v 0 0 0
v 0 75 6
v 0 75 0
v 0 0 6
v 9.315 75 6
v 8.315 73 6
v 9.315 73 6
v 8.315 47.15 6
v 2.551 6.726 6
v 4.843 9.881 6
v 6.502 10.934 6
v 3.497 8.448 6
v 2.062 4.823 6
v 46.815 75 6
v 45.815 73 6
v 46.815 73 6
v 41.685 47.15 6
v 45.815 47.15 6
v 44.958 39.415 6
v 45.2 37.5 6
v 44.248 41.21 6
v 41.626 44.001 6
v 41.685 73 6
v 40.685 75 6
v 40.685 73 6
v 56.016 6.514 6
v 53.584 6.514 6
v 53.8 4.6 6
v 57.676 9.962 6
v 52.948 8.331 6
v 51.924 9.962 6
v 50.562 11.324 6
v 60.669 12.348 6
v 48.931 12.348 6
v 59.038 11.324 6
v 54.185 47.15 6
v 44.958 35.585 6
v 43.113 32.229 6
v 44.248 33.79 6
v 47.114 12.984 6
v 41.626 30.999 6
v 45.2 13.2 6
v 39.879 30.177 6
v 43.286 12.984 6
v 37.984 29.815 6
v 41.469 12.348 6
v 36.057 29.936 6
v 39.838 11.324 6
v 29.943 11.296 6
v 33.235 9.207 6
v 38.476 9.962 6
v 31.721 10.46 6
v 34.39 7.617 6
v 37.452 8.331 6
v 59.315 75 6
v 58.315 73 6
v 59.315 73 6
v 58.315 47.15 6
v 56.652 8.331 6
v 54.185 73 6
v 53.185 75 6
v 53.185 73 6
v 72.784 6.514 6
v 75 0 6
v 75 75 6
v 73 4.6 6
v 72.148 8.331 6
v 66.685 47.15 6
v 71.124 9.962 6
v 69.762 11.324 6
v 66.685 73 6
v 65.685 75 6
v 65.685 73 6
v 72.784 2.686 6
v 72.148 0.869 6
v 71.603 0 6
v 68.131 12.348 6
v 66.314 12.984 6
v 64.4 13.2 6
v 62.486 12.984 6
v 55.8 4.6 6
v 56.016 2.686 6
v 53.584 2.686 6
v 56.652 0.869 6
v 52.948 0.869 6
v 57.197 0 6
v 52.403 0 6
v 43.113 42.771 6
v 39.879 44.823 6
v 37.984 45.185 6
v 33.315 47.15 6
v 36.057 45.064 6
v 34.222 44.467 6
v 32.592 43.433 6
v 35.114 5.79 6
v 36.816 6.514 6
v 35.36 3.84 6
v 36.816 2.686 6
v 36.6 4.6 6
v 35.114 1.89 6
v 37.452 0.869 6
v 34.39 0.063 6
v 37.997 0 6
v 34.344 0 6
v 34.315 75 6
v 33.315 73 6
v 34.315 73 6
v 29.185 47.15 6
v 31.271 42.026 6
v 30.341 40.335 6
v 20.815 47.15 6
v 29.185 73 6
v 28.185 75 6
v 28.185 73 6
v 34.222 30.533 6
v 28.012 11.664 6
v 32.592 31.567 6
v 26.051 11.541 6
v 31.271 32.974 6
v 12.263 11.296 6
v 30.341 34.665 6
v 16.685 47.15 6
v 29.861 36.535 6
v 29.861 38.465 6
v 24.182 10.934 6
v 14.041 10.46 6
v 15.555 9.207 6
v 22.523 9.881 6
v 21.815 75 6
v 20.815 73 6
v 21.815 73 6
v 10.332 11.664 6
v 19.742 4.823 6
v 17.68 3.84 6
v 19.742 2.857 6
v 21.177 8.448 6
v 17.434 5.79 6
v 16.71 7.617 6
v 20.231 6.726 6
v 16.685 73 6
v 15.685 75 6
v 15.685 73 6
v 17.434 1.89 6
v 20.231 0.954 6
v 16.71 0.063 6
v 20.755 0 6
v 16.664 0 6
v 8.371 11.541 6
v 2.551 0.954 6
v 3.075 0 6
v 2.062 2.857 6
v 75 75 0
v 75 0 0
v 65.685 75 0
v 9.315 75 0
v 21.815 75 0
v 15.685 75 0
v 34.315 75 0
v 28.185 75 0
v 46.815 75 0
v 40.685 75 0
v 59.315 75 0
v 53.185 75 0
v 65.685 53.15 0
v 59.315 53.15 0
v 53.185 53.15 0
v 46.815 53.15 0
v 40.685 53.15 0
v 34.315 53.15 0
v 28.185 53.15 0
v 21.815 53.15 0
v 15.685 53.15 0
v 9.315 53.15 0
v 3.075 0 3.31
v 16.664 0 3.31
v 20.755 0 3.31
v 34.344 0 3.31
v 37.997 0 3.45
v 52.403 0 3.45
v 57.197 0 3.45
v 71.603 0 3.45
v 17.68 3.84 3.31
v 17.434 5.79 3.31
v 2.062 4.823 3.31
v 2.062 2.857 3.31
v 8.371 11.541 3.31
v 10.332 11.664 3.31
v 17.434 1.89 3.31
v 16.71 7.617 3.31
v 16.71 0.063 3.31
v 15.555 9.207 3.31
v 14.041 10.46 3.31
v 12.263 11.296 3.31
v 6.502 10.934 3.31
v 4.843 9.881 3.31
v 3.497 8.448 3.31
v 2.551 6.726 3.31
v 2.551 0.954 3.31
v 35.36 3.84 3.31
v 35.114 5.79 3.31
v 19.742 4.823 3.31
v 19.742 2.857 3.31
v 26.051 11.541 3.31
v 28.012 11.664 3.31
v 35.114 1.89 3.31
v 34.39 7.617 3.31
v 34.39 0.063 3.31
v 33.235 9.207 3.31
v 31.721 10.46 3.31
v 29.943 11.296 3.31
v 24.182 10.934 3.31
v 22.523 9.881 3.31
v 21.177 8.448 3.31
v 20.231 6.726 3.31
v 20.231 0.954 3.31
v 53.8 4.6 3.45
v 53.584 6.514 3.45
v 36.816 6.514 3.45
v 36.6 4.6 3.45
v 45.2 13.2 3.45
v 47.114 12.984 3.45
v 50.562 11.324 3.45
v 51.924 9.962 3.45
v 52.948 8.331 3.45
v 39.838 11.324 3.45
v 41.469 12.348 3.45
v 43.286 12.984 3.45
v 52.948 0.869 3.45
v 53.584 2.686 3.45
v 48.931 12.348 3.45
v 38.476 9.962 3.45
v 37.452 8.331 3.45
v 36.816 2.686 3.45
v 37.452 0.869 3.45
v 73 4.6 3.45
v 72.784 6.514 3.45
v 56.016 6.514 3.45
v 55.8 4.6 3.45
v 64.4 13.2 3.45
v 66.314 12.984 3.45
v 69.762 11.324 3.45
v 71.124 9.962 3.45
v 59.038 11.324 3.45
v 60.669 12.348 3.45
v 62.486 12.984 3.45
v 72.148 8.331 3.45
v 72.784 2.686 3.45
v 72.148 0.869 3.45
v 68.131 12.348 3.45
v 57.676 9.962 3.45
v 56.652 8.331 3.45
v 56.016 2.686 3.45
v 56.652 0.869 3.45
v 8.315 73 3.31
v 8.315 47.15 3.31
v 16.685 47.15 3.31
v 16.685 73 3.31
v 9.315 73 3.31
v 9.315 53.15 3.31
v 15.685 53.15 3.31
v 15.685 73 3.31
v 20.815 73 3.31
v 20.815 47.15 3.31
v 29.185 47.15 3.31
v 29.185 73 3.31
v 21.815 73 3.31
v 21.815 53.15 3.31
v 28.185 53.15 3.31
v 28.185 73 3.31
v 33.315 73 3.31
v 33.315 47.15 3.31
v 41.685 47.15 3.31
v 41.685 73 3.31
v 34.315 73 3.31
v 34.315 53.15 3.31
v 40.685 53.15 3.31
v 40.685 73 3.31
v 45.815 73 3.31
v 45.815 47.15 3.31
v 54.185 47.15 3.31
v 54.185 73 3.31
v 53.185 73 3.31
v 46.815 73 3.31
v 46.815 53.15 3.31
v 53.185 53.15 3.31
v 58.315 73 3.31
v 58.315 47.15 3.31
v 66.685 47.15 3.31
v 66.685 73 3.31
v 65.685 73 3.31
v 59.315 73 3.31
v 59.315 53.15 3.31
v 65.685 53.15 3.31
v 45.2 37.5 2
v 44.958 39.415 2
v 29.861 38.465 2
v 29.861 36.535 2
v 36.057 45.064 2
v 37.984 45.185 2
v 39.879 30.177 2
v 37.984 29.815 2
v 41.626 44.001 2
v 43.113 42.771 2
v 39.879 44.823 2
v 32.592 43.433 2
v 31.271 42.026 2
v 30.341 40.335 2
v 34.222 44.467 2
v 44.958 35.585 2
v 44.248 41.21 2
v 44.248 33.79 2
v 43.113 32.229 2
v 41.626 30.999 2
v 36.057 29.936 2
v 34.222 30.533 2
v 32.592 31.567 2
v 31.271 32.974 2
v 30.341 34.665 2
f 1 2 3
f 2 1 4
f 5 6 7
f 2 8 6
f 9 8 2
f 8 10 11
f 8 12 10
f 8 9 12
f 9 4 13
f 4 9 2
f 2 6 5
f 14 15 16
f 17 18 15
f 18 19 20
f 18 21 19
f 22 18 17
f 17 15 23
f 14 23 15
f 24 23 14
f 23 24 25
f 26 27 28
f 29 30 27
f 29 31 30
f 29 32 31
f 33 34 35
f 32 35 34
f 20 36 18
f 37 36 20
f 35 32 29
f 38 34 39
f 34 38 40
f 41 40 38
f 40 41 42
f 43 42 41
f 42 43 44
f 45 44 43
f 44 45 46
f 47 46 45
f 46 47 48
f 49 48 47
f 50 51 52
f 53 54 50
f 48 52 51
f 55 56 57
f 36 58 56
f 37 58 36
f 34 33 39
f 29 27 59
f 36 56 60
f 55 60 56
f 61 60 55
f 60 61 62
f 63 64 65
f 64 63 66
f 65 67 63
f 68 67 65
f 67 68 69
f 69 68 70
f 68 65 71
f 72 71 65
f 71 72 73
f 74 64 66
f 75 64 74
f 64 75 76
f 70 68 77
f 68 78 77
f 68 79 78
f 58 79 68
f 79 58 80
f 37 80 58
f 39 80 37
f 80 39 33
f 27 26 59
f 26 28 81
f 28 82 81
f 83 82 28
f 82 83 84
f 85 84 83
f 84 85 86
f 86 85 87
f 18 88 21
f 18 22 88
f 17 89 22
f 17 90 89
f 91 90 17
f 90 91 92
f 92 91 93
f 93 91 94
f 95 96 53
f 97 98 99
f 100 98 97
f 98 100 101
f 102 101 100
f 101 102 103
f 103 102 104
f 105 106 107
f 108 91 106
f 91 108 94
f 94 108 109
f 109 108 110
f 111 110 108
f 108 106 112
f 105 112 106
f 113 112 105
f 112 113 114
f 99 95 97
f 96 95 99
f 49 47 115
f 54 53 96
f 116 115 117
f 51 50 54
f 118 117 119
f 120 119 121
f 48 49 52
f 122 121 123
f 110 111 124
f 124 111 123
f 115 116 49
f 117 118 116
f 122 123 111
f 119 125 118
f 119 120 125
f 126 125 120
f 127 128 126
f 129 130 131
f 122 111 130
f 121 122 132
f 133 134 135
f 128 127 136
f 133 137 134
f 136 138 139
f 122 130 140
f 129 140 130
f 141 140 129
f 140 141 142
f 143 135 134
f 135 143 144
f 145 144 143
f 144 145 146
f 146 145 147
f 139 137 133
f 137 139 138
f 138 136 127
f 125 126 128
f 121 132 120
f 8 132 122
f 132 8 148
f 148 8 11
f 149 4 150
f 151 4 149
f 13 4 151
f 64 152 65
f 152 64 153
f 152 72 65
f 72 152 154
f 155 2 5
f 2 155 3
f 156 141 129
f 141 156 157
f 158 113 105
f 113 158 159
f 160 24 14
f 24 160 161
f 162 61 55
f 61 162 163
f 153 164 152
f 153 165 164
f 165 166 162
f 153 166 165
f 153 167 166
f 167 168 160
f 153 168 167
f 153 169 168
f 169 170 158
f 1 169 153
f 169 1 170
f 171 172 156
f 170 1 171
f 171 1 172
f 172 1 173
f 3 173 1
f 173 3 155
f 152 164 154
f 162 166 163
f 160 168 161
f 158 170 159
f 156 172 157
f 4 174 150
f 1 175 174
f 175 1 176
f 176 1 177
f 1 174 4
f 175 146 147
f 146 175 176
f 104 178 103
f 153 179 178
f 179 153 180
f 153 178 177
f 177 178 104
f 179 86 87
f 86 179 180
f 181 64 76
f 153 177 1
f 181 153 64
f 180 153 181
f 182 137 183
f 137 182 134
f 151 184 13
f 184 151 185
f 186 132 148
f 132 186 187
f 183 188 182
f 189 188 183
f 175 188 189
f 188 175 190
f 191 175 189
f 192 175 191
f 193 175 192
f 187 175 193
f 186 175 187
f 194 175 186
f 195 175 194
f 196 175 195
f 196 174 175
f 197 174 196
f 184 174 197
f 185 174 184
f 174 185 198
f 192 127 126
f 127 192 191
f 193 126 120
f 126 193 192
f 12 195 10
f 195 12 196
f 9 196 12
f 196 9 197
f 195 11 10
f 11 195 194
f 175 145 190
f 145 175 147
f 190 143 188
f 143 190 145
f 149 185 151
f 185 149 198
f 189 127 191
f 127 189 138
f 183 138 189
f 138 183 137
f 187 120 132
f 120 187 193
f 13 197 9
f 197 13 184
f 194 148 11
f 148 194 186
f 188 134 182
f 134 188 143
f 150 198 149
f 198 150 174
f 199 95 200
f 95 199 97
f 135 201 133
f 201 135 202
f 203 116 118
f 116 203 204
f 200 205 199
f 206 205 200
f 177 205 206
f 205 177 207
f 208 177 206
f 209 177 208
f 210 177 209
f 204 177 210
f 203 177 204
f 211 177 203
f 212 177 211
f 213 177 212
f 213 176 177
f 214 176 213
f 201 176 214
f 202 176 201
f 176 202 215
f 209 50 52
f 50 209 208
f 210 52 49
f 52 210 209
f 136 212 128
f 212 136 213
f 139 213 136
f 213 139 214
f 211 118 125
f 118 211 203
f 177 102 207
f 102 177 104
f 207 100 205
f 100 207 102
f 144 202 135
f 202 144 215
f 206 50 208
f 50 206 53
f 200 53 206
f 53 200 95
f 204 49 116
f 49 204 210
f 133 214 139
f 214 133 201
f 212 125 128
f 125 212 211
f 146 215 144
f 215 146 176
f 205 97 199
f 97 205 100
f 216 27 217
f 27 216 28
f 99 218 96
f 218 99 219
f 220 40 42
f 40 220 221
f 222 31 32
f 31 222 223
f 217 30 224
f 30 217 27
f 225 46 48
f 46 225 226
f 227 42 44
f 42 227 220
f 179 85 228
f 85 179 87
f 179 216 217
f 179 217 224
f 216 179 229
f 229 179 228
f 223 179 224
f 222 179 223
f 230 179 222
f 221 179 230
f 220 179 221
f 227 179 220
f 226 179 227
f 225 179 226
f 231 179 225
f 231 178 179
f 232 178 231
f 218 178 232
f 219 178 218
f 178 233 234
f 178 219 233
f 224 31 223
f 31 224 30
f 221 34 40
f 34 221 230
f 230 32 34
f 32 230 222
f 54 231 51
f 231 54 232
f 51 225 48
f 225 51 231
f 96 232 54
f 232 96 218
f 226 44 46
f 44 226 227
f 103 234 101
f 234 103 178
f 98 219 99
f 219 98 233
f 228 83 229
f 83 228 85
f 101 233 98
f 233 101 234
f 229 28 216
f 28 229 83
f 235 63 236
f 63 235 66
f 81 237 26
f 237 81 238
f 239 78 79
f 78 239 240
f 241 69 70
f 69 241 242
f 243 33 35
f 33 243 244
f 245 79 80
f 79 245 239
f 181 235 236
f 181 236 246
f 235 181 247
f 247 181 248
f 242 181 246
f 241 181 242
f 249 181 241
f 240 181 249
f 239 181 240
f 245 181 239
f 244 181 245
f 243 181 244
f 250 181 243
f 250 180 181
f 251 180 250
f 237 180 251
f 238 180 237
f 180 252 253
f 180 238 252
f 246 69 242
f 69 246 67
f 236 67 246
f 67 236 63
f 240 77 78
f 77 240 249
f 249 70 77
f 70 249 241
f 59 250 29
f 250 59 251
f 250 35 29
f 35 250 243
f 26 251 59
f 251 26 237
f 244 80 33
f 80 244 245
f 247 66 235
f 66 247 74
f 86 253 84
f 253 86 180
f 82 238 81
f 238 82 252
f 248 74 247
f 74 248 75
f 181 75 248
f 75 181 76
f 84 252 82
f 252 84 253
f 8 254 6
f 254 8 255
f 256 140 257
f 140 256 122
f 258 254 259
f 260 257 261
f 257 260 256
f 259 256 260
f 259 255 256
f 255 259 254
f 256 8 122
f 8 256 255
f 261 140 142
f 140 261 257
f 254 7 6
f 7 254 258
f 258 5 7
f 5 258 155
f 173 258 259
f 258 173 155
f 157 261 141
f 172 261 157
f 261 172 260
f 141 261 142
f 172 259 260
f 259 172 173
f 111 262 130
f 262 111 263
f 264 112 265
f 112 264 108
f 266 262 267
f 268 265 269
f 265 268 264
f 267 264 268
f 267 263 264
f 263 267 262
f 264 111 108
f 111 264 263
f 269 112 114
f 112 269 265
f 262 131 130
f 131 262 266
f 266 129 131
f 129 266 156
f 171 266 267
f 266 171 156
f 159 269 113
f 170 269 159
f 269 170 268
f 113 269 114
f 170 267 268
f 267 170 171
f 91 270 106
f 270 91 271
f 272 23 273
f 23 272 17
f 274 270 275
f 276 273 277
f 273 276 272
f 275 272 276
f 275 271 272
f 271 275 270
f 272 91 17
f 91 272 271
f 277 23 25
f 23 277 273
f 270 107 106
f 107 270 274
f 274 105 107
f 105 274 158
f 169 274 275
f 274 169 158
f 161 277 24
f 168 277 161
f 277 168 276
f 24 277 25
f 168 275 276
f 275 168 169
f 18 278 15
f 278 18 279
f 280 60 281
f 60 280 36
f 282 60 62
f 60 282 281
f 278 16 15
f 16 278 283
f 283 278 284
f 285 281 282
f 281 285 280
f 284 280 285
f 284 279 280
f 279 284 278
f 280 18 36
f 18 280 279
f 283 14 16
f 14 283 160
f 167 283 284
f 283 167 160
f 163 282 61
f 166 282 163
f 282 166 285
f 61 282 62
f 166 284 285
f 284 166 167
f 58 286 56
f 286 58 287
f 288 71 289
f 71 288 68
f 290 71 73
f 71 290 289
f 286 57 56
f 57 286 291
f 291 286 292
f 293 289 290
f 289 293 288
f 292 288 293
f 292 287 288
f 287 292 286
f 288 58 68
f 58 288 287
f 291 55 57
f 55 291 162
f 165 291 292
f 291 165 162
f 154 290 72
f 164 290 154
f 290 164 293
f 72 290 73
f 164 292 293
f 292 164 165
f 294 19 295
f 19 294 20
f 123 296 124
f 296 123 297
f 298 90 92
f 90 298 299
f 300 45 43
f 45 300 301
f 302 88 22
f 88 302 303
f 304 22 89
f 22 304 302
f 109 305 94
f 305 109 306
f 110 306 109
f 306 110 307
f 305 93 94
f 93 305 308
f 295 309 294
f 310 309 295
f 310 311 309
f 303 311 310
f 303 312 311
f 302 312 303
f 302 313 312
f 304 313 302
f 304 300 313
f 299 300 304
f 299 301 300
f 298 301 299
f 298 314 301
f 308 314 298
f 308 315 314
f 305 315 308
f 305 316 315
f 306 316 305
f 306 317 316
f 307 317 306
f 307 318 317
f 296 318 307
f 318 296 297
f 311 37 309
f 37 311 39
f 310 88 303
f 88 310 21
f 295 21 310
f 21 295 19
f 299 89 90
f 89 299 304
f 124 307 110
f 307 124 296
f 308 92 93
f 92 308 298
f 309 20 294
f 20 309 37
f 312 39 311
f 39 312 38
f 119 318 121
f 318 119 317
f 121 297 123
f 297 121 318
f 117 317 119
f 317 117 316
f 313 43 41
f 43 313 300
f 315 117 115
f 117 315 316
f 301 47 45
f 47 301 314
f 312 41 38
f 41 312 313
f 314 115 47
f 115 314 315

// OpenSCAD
length = 75;
width = 75;
height = 6;

//Based on magnet size:
magnetBaseInnerDiameter = 15.4;
magnetHeight = 4.0;

//	5 heartbeat tokens 2.19 thick 7.87 wi 25.35 long 
//	prestige token 2 15.18 diameter 2.19 thick 
//	money tokens 2 2.05 thick 16.7 diameter

prestigeTokenDiameter = 15.18 + .5;
prestigeTokenOffset = 4;
prestigeTokenHeight = 2.19 + .5;

moneyTokenDiameter = 16.7 + .5;
moneyTokenOffset = 4;
moneyTokenHeight = 2.05 + .5;

heartbeatTokenWidth = 25.35 + .5;
heartbeatTokenLength = 7.87 + .5;
heartbeatTokenHeight = 2.19 + .5;

spaceBetweenCircles = 2;
wallThickness = spaceBetweenCircles;

squareLipWidthRemainder = 2;
squareLipLengthRemainder = 4;

difference(){
    cube([length, width, height]);

    translate(
        [
            spaceBetweenCircles + prestigeTokenDiameter/2,  
            prestigeTokenDiameter/2 - prestigeTokenOffset,
            height - prestigeTokenHeight
        ])
        cylinder(prestigeTokenHeight, d=prestigeTokenDiameter);
    
    translate(
        [
            spaceBetweenCircles * 2 + prestigeTokenDiameter * 3/2,  
            prestigeTokenDiameter/2 - prestigeTokenOffset,
            height - prestigeTokenHeight
        ])
        cylinder(prestigeTokenHeight, d=prestigeTokenDiameter);

    translate(
        [
            length - (moneyTokenDiameter * 3/2 + spaceBetweenCircles * 2),
            moneyTokenDiameter/2 - moneyTokenOffset,
            height - moneyTokenHeight
        ])
        cylinder(moneyTokenHeight, d=moneyTokenDiameter);

    translate(
        [
            length - (moneyTokenDiameter/2 + spaceBetweenCircles),
            moneyTokenDiameter/2 - moneyTokenOffset,
            height - moneyTokenHeight
        ])
        cylinder(moneyTokenHeight, d=moneyTokenDiameter);
    
    
    
    
//    translate(
//        [
//            spaceBetweenCircles + chiefTokenDiameter/2,
//            width - (chiefTokenDiameter/2 - chiefTokenOffset),
//            height - chiefTokenHeight
//        ])
//        cube([]);  //chiefTokenHeight, d=chiefTokenDiameter);


    translate(
        [
            length/6 - (heartbeatTokenLength/2),
            width - (heartbeatTokenWidth + wallThickness),
            height - heartbeatTokenHeight
        ])
        cube([heartbeatTokenLength,heartbeatTokenWidth, heartbeatTokenHeight]);
    translate([
        length/6 - (heartbeatTokenLength - squareLipWidthRemainder)/2,
        width - (heartbeatTokenWidth - squareLipLengthRemainder),
        0])
        cube([
            heartbeatTokenLength - squareLipWidthRemainder,
            heartbeatTokenWidth - squareLipLengthRemainder,
            height]);
            
    translate(
        [
            2 * length/6 - (heartbeatTokenLength/2),
            width - (heartbeatTokenWidth + wallThickness),
            height - heartbeatTokenHeight
        ])
        cube([heartbeatTokenLength,heartbeatTokenWidth, heartbeatTokenHeight]);
    translate([
        2 * length/6 - (heartbeatTokenLength - squareLipWidthRemainder)/2,
        width - (heartbeatTokenWidth - squareLipLengthRemainder),
        0])
        cube([
            heartbeatTokenLength - squareLipWidthRemainder,
            heartbeatTokenWidth - squareLipLengthRemainder,
            height]);
            
    translate(
        [
            3 * length/6 - (heartbeatTokenLength/2),
            width - (heartbeatTokenWidth + wallThickness),
            height - heartbeatTokenHeight
        ])
        cube([heartbeatTokenLength,heartbeatTokenWidth, heartbeatTokenHeight]);
    translate([
        3 * length/6 - (heartbeatTokenLength - squareLipWidthRemainder)/2,
        width - (heartbeatTokenWidth - squareLipLengthRemainder),
        0])
        cube([
            heartbeatTokenLength - squareLipWidthRemainder,
            heartbeatTokenWidth - squareLipLengthRemainder,
            height]);
            
    translate(
        [
            4 * length/6 - (heartbeatTokenLength/2),
            width - (heartbeatTokenWidth + wallThickness),
            height - heartbeatTokenHeight
        ])
        cube([heartbeatTokenLength,heartbeatTokenWidth, heartbeatTokenHeight]);
    translate([
        4 * length/6 - (heartbeatTokenLength - squareLipWidthRemainder)/2,
        width - (heartbeatTokenWidth - squareLipLengthRemainder),
        0])
        cube([
            heartbeatTokenLength - squareLipWidthRemainder,
            heartbeatTokenWidth - squareLipLengthRemainder,
            height]);
   
   translate(
        [
            5 * length/6 - (heartbeatTokenLength/2),
            width - (heartbeatTokenWidth + wallThickness),
            height - heartbeatTokenHeight
        ])
        cube([heartbeatTokenLength,heartbeatTokenWidth, heartbeatTokenHeight]);
    translate([
        5 * length/6 - (heartbeatTokenLength - squareLipWidthRemainder)/2,
        width - (heartbeatTokenWidth - squareLipLengthRemainder),
        0])
        cube([
            heartbeatTokenLength - squareLipWidthRemainder,
            heartbeatTokenWidth - squareLipLengthRemainder,
            height]);
   
//    translate(
//        [
//            wallThickness,
//            width - (heartbeatTokenWidth + wallThickness),
//            height - heartbeatTokenHeight
//        ])
//        cube([heartbeatTokenLength,heartbeatTokenWidth, heartbeatTokenHeight]);
//    translate([
//        wallThickness + squareLipWidthRemainder/2,
//        width - (heartbeatTokenWidth - squareLipLengthRemainder),
//        0])
//        cube([
//            heartbeatTokenLength - squareLipWidthRemainder,
//            heartbeatTokenWidth - squareLipLengthRemainder,
//            height]);
//            
//
//    translate(
//        [
//            length - (wallThickness + heartbeatTokenLength),
//            width - (heartbeatTokenWidth + wallThickness),
//            height - heartbeatTokenHeight
//        ])
//        cube([heartbeatTokenLength,heartbeatTokenWidth, heartbeatTokenHeight]);
//    translate([
//        length - (wallThickness + heartbeatTokenLength - squareLipWidthRemainder/2),
//        width - (heartbeatTokenWidth - squareLipLengthRemainder),
//        0])
//        cube([
//            heartbeatTokenLength - squareLipWidthRemainder,
//            heartbeatTokenWidth - squareLipLengthRemainder,
//            height]);  
   
    translate([length/2, width/2, height - magnetHeight])
        cylinder(magnetHeight, d=magnetBaseInnerDiameter);
        

}
